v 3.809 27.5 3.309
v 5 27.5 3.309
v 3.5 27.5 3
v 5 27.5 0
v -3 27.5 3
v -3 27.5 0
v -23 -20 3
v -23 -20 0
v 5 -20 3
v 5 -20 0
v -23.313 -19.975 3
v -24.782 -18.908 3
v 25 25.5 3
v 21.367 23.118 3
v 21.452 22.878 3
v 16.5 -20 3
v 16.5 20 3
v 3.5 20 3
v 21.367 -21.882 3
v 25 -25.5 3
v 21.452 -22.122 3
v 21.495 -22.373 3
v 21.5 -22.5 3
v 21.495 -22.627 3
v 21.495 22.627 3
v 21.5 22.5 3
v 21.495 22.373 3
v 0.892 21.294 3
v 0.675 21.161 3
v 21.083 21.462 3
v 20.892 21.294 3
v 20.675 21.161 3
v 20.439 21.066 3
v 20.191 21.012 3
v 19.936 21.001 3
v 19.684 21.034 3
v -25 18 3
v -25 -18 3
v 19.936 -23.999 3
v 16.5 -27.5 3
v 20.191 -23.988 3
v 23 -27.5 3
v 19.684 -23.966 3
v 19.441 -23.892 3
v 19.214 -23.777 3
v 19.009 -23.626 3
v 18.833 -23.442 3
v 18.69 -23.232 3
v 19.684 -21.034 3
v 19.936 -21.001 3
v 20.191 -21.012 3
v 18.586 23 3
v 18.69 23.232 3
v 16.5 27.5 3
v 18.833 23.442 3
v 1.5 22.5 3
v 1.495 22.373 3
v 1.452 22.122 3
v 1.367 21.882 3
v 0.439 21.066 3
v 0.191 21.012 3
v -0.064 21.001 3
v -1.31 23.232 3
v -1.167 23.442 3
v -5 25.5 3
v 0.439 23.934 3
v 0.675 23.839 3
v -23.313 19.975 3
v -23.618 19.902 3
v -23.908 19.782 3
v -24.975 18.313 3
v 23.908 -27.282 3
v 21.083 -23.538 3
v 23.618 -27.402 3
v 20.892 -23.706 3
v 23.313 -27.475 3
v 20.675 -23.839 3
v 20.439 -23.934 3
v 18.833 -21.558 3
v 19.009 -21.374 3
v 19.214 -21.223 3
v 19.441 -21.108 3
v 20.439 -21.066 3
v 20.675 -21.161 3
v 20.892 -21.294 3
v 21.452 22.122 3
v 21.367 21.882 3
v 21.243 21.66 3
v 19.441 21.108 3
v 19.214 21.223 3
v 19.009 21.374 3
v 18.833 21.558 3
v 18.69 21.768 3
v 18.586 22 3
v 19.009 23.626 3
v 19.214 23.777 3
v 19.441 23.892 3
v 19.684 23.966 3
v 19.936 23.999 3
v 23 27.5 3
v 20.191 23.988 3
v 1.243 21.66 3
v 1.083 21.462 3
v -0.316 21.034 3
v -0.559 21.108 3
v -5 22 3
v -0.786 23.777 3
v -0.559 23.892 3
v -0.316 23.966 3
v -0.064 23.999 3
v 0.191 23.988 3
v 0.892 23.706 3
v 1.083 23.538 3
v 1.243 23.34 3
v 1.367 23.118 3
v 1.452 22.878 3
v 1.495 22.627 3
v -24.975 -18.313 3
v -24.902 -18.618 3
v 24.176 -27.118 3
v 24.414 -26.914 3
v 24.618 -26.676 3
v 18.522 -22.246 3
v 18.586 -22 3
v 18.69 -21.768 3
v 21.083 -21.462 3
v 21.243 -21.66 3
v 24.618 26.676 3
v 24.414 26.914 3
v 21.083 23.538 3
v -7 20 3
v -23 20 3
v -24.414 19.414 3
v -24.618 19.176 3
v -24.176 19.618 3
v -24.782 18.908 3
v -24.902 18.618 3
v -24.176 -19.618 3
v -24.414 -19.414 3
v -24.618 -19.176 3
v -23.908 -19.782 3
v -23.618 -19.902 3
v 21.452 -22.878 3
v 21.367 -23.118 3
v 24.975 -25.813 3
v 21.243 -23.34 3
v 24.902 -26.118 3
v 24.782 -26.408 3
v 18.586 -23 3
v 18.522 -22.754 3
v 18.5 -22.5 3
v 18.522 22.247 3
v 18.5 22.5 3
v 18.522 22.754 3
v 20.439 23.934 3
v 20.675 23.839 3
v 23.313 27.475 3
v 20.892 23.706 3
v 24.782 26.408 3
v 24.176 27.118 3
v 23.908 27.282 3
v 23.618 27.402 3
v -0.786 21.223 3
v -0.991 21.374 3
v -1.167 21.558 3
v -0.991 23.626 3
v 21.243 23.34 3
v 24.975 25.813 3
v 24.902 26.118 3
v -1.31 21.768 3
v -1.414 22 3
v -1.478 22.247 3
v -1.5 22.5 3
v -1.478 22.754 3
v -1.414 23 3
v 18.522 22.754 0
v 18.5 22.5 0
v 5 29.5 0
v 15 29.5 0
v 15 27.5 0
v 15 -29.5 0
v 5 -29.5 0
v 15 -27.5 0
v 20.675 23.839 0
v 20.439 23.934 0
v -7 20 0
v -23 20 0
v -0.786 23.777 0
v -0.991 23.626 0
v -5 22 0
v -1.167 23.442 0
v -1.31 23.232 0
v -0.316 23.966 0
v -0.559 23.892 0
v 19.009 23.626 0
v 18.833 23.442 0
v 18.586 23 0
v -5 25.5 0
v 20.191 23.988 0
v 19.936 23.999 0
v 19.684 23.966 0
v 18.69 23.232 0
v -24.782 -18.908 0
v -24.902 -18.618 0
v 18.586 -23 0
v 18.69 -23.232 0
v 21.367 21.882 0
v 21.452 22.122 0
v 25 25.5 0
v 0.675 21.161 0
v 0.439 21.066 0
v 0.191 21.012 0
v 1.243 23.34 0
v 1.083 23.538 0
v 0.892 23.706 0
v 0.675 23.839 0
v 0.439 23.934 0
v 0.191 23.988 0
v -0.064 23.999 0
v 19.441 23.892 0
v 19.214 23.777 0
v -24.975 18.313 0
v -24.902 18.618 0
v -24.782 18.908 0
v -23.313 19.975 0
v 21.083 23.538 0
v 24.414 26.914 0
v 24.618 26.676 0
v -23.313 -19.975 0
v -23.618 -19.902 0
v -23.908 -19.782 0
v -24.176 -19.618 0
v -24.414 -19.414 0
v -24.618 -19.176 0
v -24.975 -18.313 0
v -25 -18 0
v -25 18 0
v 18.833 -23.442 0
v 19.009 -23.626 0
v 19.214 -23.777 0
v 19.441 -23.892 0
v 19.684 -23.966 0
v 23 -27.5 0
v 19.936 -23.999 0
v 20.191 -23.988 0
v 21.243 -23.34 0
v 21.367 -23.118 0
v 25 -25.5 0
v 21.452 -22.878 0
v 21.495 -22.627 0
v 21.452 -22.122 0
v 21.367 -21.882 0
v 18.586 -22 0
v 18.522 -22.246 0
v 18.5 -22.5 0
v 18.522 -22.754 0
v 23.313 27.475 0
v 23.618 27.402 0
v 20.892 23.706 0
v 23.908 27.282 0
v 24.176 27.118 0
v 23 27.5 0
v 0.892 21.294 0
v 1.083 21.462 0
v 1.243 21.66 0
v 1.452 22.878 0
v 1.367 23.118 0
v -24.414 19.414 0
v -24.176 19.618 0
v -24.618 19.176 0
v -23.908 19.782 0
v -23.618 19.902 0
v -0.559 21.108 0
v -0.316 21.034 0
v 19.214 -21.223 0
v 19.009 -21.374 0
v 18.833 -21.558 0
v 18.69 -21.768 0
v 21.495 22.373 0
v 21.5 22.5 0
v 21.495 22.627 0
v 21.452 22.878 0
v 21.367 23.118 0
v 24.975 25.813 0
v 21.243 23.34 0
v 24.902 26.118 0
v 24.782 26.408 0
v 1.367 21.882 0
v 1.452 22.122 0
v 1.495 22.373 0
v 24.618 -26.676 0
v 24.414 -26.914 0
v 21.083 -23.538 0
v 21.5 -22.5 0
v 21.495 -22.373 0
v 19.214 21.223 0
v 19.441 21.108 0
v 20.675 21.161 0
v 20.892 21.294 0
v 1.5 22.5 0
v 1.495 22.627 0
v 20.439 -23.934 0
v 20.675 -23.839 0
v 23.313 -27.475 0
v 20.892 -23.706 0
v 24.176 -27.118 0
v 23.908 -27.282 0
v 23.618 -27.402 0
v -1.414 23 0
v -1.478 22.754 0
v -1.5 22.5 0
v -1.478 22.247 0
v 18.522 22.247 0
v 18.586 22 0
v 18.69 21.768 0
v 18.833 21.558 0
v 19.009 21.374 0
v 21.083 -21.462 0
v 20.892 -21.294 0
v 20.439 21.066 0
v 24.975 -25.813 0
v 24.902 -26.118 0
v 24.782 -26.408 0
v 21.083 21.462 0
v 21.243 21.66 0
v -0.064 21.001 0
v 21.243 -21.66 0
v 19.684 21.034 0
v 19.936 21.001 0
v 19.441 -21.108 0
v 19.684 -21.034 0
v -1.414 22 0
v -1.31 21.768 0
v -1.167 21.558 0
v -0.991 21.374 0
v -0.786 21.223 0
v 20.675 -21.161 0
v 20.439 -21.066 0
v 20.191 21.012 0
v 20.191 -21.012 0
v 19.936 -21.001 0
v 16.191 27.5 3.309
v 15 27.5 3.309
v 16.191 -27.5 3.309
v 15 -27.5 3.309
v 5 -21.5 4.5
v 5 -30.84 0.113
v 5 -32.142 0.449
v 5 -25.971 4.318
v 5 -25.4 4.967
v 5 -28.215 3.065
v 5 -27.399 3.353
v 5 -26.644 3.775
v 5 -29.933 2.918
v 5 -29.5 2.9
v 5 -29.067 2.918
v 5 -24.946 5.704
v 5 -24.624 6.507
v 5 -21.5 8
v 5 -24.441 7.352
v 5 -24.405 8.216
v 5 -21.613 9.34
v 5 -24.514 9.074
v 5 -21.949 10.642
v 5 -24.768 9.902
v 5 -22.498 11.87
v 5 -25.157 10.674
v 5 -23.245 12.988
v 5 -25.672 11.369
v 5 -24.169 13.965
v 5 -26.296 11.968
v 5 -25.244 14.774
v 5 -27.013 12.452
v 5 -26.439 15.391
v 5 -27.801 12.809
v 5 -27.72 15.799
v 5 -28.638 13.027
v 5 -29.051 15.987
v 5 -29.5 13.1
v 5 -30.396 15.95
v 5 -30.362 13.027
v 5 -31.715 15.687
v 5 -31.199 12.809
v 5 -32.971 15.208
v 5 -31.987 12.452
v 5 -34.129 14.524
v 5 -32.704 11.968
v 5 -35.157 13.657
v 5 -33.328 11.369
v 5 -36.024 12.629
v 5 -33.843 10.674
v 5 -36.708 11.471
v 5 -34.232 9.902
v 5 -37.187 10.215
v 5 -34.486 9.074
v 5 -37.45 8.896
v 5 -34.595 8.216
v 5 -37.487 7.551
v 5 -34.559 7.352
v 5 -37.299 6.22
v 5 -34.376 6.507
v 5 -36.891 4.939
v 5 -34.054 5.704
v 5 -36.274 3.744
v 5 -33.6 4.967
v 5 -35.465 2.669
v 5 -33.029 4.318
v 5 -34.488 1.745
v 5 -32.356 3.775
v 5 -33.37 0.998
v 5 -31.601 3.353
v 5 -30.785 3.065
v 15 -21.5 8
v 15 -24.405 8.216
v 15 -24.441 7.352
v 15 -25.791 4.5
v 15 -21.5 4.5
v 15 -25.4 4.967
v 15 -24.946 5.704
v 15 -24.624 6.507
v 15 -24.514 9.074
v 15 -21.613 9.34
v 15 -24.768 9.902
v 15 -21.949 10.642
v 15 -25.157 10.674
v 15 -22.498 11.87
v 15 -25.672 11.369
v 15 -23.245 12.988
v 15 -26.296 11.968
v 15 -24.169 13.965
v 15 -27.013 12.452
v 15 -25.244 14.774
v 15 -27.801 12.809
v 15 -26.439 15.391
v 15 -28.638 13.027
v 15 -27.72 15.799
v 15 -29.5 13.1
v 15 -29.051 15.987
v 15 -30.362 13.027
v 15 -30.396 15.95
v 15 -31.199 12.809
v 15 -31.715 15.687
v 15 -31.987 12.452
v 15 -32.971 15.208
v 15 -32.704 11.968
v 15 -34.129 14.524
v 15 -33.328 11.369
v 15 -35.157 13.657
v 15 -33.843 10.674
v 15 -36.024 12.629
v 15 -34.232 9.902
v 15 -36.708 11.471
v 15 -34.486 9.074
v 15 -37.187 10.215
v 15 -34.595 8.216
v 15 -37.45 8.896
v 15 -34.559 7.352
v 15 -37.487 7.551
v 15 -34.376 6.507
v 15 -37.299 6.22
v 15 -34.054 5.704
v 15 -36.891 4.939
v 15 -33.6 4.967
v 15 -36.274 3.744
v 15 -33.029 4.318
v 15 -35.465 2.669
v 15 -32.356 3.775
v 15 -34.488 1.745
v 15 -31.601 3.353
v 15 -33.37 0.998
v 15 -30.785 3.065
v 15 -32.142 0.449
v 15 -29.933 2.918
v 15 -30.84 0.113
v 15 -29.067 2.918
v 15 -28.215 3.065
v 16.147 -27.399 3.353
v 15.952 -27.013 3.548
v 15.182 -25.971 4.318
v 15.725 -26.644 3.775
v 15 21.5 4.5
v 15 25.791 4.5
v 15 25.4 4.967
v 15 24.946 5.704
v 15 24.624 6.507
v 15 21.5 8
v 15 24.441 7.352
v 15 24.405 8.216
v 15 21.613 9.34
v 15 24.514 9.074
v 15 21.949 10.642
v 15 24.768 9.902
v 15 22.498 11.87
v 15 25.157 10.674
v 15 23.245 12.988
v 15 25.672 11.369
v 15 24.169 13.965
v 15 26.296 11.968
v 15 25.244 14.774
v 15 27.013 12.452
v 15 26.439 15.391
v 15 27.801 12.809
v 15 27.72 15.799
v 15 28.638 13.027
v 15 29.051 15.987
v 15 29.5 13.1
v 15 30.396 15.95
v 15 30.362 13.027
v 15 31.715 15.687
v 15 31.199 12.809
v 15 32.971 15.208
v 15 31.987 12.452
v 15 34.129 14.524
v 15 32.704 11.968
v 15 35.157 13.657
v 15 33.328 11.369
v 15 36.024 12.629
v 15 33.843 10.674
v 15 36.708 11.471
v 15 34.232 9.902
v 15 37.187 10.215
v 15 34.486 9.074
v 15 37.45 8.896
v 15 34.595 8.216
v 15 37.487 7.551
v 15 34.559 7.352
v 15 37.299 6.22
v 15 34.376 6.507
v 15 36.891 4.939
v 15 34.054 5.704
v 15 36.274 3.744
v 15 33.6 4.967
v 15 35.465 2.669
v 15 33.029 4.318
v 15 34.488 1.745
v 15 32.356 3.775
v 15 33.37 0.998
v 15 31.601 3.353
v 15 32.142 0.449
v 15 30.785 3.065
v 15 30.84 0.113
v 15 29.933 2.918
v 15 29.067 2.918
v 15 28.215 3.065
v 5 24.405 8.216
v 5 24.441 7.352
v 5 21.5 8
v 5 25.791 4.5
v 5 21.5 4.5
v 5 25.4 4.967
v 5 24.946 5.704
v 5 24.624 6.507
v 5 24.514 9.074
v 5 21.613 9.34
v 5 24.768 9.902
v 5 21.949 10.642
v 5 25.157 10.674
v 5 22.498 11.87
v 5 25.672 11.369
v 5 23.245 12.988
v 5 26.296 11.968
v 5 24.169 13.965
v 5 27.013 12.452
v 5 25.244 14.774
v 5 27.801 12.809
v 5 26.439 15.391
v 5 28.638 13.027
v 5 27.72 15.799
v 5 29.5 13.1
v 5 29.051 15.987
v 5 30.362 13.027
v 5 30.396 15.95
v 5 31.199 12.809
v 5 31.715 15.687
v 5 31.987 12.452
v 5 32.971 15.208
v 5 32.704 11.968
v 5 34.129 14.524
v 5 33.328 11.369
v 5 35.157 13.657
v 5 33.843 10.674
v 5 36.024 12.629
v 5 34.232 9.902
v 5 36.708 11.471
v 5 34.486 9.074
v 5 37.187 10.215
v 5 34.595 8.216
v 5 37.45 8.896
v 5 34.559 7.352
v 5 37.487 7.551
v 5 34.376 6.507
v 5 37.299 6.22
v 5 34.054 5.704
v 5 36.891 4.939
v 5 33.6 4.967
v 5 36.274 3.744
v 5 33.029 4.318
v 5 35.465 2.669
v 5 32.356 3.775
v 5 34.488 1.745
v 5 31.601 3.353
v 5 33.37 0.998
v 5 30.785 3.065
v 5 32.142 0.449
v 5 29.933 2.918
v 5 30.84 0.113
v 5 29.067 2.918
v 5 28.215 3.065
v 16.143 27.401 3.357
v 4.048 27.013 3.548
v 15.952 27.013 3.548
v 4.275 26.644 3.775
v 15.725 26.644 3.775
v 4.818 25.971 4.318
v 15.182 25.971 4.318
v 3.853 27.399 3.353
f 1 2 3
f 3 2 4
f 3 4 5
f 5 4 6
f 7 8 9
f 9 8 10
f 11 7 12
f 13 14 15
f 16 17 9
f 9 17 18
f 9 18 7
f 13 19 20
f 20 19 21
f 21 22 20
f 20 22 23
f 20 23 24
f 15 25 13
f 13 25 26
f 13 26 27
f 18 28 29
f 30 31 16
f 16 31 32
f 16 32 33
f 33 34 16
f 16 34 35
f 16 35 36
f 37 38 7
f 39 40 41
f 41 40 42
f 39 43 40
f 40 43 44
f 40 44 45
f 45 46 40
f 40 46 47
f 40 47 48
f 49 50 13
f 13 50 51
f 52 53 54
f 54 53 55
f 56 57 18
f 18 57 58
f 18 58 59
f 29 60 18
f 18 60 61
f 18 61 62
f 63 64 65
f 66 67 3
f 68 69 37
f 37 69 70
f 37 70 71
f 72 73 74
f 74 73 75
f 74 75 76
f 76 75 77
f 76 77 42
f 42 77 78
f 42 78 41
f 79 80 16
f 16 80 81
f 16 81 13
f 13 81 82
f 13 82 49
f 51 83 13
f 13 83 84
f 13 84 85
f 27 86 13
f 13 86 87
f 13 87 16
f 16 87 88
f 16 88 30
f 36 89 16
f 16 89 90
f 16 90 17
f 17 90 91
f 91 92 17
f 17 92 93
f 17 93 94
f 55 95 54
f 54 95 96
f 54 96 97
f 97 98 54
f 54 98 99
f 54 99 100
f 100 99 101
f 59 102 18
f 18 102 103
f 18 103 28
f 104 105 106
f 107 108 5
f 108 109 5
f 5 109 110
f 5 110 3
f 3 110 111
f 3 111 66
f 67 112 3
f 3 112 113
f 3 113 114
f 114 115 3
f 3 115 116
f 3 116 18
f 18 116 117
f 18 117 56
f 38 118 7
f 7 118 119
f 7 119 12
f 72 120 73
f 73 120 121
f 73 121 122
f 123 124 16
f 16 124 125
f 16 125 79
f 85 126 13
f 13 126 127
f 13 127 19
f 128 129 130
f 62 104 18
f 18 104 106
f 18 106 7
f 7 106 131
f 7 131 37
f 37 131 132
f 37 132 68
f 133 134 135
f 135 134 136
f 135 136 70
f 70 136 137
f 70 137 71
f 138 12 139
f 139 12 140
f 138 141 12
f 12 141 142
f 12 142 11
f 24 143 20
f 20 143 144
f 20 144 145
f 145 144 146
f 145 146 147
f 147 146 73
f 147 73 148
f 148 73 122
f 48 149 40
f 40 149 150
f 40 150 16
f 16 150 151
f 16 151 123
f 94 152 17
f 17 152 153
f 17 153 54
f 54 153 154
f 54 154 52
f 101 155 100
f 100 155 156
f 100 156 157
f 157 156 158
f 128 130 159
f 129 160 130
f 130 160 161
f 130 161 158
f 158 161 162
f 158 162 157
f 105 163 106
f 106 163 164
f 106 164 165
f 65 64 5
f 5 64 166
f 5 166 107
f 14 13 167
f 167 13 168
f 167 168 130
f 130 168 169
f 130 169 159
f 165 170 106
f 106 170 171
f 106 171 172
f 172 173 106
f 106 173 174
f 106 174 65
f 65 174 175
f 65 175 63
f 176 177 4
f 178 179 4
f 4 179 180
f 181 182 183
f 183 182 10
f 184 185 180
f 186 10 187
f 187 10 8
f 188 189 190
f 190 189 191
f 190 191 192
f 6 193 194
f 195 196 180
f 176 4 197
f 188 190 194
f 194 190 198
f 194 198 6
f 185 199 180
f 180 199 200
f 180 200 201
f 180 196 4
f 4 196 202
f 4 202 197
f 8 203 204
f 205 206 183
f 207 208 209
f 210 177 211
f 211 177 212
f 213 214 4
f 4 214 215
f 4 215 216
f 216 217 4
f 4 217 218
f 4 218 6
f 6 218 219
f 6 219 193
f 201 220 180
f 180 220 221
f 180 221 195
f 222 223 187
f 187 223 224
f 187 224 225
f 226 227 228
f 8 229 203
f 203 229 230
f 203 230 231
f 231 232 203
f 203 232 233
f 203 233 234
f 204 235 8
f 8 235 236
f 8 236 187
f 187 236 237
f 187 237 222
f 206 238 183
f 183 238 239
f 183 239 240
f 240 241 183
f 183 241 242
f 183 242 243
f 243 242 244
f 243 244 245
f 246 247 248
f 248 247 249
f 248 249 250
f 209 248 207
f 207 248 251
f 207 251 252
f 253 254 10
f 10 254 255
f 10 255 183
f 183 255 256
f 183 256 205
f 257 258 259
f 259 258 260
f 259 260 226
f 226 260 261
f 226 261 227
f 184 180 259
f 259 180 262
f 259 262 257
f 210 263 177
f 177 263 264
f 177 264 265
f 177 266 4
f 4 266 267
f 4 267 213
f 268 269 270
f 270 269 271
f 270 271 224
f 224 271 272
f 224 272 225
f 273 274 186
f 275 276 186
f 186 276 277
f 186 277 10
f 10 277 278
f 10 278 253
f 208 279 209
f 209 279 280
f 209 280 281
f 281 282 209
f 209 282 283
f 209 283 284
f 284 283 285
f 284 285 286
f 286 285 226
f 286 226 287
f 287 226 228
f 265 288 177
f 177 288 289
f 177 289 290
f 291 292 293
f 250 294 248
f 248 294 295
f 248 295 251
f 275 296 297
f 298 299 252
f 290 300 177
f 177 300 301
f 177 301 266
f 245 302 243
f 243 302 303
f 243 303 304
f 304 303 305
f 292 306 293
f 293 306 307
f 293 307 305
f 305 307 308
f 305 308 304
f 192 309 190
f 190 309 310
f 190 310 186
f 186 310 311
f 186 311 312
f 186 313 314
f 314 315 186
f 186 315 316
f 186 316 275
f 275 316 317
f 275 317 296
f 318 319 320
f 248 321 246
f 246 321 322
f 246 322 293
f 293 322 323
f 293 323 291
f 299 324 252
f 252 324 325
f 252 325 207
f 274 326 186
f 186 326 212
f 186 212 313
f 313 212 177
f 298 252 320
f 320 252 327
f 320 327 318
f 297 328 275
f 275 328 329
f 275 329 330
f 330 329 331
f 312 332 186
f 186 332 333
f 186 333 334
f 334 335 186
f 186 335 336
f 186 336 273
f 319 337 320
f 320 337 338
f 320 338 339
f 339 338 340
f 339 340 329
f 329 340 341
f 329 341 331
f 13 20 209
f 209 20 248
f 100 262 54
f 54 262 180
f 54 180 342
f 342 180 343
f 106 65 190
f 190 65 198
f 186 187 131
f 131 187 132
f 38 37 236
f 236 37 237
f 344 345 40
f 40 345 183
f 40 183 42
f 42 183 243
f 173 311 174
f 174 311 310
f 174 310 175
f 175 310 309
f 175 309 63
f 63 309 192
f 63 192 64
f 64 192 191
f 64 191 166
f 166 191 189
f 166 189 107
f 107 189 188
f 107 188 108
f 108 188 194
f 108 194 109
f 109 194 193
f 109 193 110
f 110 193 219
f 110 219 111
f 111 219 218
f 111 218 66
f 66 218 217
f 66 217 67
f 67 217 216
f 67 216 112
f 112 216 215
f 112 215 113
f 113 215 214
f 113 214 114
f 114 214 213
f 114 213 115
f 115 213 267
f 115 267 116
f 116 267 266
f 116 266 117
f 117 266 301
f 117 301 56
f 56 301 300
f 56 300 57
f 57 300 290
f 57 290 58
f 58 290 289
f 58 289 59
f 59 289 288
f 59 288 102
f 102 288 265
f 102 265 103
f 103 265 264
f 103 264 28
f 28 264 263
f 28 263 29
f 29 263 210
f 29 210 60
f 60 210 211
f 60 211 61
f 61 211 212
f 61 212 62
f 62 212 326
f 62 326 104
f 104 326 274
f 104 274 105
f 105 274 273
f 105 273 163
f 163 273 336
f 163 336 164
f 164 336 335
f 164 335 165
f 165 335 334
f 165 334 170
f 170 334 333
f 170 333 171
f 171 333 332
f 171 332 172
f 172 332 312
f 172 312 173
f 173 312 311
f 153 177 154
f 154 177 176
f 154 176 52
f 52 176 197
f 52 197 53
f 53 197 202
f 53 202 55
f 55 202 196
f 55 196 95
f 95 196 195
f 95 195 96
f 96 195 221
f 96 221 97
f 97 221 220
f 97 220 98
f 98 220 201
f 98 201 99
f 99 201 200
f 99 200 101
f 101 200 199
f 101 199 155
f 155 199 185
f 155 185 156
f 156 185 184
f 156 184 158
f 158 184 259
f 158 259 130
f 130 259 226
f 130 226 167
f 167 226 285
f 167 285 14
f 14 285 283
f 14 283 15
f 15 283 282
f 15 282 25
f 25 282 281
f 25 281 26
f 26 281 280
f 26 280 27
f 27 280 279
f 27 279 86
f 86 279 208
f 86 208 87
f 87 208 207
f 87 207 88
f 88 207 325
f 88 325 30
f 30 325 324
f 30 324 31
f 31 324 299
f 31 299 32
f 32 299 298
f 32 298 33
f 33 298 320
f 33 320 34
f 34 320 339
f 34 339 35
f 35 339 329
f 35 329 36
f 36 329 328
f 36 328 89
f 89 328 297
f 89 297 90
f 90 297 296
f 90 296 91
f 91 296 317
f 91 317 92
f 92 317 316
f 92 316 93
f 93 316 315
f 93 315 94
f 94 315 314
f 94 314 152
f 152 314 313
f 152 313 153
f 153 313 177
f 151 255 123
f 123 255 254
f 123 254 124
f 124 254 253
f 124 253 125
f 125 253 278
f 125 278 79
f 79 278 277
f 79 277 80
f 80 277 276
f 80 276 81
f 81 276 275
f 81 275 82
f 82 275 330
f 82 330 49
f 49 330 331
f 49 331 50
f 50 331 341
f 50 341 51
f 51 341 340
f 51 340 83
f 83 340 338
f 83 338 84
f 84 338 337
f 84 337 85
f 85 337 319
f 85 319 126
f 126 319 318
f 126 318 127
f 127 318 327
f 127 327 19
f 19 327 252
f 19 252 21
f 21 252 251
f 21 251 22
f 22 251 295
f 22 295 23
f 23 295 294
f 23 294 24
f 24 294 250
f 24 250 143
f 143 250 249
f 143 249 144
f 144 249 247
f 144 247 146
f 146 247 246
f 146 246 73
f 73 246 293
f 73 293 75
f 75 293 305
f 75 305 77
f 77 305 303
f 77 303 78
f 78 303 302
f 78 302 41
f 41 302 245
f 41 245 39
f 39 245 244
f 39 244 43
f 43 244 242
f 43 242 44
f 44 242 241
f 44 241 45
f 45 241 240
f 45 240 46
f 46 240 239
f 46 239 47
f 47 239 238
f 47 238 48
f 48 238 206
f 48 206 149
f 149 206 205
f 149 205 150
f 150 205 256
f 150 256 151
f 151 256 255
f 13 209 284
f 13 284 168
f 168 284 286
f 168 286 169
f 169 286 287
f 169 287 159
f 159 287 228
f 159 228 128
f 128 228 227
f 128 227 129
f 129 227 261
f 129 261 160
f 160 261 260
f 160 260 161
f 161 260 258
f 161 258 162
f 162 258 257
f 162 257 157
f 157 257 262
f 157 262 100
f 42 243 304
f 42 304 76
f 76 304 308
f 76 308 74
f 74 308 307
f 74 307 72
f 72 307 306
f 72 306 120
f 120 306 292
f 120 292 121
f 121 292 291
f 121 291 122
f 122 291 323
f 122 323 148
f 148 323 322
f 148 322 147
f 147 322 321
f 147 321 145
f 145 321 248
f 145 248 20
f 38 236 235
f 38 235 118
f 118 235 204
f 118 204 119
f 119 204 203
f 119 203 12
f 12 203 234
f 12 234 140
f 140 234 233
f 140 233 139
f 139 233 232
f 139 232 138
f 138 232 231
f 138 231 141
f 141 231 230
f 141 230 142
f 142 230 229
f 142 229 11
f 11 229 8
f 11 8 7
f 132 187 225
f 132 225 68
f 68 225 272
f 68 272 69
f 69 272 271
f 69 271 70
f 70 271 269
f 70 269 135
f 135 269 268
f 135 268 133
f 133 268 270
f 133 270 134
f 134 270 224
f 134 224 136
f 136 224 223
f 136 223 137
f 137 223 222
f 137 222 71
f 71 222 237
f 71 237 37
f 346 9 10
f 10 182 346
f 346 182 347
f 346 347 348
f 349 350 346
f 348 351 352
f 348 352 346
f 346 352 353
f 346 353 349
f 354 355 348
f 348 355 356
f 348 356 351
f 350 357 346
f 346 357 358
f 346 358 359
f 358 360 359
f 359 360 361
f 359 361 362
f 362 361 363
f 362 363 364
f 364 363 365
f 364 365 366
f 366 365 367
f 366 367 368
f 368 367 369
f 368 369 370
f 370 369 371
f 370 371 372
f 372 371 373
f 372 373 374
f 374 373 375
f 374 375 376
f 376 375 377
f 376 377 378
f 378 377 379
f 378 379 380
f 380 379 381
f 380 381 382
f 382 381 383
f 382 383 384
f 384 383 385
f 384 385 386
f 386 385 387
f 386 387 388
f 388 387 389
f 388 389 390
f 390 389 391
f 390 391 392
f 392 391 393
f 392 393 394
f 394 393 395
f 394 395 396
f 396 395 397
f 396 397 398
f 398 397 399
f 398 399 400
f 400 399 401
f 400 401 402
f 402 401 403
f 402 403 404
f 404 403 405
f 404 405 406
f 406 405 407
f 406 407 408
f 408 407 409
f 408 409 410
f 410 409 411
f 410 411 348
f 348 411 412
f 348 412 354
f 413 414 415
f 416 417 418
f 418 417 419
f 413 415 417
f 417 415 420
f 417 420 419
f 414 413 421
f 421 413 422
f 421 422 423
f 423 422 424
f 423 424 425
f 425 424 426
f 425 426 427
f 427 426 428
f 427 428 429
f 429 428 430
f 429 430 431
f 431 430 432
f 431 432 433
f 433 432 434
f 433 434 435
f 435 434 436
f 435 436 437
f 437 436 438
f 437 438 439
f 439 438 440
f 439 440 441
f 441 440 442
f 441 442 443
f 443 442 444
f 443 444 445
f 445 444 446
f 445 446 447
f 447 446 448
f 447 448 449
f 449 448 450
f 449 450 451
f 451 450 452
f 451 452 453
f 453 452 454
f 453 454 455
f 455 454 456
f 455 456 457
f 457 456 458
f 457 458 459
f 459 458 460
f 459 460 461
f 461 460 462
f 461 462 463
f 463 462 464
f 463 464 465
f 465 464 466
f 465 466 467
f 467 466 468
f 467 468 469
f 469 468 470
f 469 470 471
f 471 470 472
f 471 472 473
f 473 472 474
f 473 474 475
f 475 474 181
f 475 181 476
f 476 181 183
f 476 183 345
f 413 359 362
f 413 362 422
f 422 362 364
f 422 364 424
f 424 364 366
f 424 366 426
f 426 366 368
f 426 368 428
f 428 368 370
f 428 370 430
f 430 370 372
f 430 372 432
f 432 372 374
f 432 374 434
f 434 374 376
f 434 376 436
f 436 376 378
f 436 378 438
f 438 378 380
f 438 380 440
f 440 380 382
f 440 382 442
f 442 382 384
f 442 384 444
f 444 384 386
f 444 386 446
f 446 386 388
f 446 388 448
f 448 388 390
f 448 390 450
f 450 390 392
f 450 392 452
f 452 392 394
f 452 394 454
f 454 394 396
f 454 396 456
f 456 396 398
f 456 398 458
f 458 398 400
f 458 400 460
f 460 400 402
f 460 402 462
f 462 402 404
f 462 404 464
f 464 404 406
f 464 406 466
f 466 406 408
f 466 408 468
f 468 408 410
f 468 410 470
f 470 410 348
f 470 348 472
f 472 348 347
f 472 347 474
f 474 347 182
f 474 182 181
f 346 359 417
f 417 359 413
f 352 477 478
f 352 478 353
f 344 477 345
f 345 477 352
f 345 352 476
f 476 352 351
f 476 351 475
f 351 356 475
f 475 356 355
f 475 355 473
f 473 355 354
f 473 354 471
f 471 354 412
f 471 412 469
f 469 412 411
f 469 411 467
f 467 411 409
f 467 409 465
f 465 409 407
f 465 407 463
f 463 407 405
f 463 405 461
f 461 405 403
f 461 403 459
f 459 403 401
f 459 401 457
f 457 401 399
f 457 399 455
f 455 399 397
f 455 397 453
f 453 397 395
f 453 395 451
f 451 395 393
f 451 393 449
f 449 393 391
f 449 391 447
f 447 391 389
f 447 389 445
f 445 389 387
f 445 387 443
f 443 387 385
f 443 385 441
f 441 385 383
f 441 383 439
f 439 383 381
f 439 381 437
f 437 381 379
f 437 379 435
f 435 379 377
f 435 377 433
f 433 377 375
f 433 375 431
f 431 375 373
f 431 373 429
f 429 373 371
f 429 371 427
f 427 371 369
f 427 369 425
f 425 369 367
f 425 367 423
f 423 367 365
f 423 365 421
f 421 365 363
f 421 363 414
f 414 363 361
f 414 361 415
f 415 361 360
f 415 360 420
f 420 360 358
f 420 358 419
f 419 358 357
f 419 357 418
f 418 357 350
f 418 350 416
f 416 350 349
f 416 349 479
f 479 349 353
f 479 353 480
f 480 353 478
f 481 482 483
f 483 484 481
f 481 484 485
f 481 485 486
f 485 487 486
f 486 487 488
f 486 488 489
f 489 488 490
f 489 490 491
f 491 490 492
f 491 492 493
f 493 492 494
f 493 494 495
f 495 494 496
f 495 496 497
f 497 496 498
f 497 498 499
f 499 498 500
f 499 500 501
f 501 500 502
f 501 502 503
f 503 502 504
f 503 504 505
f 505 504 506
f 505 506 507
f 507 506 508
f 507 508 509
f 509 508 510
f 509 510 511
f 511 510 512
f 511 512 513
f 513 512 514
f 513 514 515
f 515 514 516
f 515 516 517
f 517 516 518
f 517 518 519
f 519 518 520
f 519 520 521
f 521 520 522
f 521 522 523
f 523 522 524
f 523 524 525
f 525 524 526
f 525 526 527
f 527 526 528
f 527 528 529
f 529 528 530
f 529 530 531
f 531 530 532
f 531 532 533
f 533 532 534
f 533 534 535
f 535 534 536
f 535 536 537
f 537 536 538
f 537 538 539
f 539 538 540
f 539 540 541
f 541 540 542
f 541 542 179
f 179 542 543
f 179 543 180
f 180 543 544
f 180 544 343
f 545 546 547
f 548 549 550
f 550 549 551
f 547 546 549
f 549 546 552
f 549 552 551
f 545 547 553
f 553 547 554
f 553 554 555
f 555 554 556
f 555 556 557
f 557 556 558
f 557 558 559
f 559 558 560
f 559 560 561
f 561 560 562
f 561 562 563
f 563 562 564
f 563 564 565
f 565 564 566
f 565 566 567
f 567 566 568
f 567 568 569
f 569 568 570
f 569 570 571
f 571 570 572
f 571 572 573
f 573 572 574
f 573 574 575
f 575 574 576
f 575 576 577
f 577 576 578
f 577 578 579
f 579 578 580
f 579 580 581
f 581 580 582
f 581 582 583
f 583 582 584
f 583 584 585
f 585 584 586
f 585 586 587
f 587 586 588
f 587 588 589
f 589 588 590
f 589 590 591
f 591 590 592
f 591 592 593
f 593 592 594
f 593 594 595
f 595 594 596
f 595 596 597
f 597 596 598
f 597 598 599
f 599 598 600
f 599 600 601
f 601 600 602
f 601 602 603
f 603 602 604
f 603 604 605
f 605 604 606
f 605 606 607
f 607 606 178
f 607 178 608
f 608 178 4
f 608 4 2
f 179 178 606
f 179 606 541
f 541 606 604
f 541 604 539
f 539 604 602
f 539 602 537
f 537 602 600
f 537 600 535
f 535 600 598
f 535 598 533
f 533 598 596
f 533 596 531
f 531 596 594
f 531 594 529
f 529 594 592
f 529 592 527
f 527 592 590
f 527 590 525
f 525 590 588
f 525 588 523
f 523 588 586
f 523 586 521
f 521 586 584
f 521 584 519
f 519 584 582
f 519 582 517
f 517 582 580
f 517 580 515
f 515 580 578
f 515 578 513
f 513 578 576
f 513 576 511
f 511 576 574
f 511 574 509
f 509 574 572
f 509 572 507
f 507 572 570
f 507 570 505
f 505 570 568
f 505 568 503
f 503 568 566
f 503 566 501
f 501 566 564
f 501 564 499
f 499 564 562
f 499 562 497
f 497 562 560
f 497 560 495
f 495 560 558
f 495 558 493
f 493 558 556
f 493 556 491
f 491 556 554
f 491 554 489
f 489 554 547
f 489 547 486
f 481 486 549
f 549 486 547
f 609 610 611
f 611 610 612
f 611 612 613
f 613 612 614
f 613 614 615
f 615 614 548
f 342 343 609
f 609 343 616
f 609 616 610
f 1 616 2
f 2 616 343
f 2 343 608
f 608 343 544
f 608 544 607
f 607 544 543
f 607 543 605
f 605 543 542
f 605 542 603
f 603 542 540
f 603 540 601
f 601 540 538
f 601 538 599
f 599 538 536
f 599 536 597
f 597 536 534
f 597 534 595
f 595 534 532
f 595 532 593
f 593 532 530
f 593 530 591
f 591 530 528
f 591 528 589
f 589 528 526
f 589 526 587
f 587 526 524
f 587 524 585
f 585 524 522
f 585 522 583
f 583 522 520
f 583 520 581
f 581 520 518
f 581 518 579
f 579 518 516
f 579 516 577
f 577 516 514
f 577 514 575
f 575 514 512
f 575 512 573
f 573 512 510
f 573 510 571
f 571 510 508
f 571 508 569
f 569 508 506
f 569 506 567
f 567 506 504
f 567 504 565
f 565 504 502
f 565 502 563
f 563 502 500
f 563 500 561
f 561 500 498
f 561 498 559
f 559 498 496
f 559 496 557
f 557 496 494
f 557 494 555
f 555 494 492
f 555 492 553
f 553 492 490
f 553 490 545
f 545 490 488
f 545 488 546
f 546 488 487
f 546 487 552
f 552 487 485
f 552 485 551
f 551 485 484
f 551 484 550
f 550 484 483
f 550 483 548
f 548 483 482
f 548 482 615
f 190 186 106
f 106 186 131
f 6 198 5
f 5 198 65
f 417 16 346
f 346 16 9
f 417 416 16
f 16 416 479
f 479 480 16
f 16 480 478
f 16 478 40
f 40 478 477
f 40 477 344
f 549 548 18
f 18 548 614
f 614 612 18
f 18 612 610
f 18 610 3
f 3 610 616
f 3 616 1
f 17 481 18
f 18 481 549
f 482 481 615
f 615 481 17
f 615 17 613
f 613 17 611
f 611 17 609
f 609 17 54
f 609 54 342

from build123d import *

# Parameters (mm, degrees)
SKETCH1_R           = 1.5
BOSS_EXTRUDE1_DEPTH = 3
FILLET1_R           = 2
BOSS_EXTRUDE2_START = 5
SKETCH2_R           = 5.1
BOSS_EXTRUDE2_DEPTH = 10
CHAMFER1_SIZE       = 2
CHAMFER2_SIZE       = 1.5


with BuildPart() as part:
    # Sketch1 → Boss-Extrude1 (new body)
    with BuildSketch(Plane.XY):
        Polygon((10, -27.5), (25, -27.5), (25, 27.5), (-5, 27.5), (-5, 20), (-25, 20), (-25, -20), (10, -20), align=None)
        with Locations((0, 22.5)):
            Circle(SKETCH1_R, mode=Mode.SUBTRACT)
        with Locations((20, 22.5)):
            Circle(SKETCH1_R, mode=Mode.SUBTRACT)
        with Locations((20, -22.5)):
            Circle(SKETCH1_R, mode=Mode.SUBTRACT)
    extrude(amount=BOSS_EXTRUDE1_DEPTH)

    # Fillet1
    fillet1_edges = [part.edges().sort_by_distance(p)[0] for p in [
        (25, -27.5, 1.5),
        (-25, -20, 1.5),
        (-25, 20, 1.5),
        (25, 27.5, 1.5),
    ]]
    fillet(fillet1_edges, radius=FILLET1_R)

    # Sketch2 → Boss-Extrude2 (add)
    # profile 1 of 2: a face of its own
    with BuildSketch(Plane(origin=(0, 0, 0), x_dir=(0, 0, -1), z_dir=(1, 0, 0)).offset(BOSS_EXTRUDE2_START)):
        with BuildLine():
            ThreePointArc((0, -29.5), (-13.656854249, -35.156854249), (-8, -21.5))
            Line((-8, -21.5), (-3, -21.5))
            Line((-3, -21.5), (-3, -11.5))
            Line((-3, -11.5), (0, -11.5))
            Line((0, -11.5), (0, -29.5))
        make_face()
        with Locations((-8, -29.5)):
            Circle(SKETCH2_R, mode=Mode.SUBTRACT)
    # profile 2 of 2: a face of its own
    with BuildSketch(Plane(origin=(0, 0, 0), x_dir=(0, 0, -1), z_dir=(1, 0, 0)).offset(BOSS_EXTRUDE2_START)):
        with BuildLine():
            Line((0, 11.5), (0, 29.5))
            ThreePointArc((0, 29.5), (-13.656854249, 35.156854249), (-8, 21.5))
            Line((-8, 21.5), (-3, 21.5))
            Line((-3, 21.5), (-3, 11.5))
            Line((-3, 11.5), (0, 11.5))
        make_face()
        with Locations((-8, 29.5)):
            Circle(SKETCH2_R, mode=Mode.SUBTRACT)
    extrude(amount=BOSS_EXTRUDE2_DEPTH)

    # Chamfer1
    chamfer1_edges = [part.edges().sort_by_distance(p)[0] for p in [
        (-5, 20, 1.5),
        (-5, 27.5, 1.5),
    ]]
    chamfer(chamfer1_edges, length=CHAMFER1_SIZE)

    # Chamfer2
    # the kernel refuses this chamfer: 1.5 mm, written as the material it adds along each edge
    with BuildSketch(Plane(origin=(15, -21.5, 3), x_dir=(-0.02749587661058678, 0, 0.9996219169112968), z_dir=(0, -1, 0))) as chamfer2_piece_1_section:
        Polygon((CHAMFER2_SIZE * 0.999621916911, -CHAMFER2_SIZE * 0.0274958766106), (-CHAMFER2_SIZE * 0.0274958766106, -CHAMFER2_SIZE * 0.999621916911), (0, 0), align=None)
    chamfer2_piece_1 = extrude(amount=6, mode=Mode.PRIVATE)
    chamfer2_piece_1 = chamfer2_piece_1 - Plane(origin=(15.512165711, -29.5, 8), x_dir=(0, 0, -1), z_dir=(-1, 0, 0)) * Cylinder(5.1, 18, mode=Mode.PRIVATE)
    add(chamfer2_piece_1)
    with BuildSketch(Plane(origin=(5, -21.5, 3), x_dir=(0, 0.9996219169112968, -0.02749587661058648), z_dir=(1, 0, 0))) as chamfer2_piece_2_section:
        Polygon((CHAMFER2_SIZE * 0.999621916911, CHAMFER2_SIZE * 0.0274958766106), (-CHAMFER2_SIZE * 0.0274958766106, CHAMFER2_SIZE * 0.999621916911), (0, 0), align=None)
    chamfer2_piece_2 = extrude(amount=10, mode=Mode.PRIVATE)
    chamfer2_piece_2 = split(chamfer2_piece_2, bisect_by=Plane(origin=(10, -20, 3.495606231), z_dir=(0, -1, 0)), keep=Keep.TOP, mode=Mode.PRIVATE)
    add(chamfer2_piece_2)
    with BuildSketch(Plane(origin=(15, 21.5, 3), x_dir=(-0.02749587661058678, 0, 0.9996219169112968), z_dir=(0, 1, 0))) as chamfer2_piece_3_section:
        Polygon((CHAMFER2_SIZE * 0.999621916911, CHAMFER2_SIZE * 0.0274958766106), (-CHAMFER2_SIZE * 0.0274958766106, CHAMFER2_SIZE * 0.999621916911), (0, 0), align=None)
    chamfer2_piece_3 = extrude(amount=6, mode=Mode.PRIVATE)
    chamfer2_piece_3 = chamfer2_piece_3 - Plane(origin=(15.512165714, 29.5, 8), x_dir=(0, 0, -1), z_dir=(-1, 0, 0)) * Cylinder(5.1, 18, mode=Mode.PRIVATE)
    add(chamfer2_piece_3)
    with BuildSketch(Plane(origin=(5, 21.5, 3), x_dir=(0.027495876610586206, 0, 0.9996219169112968), z_dir=(0, 1, 0))) as chamfer2_piece_4_section:
        Polygon((CHAMFER2_SIZE * 0.999621916911, -CHAMFER2_SIZE * 0.0274958766106), (-CHAMFER2_SIZE * 0.0274958766106, -CHAMFER2_SIZE * 0.999621916911), (0, 0), align=None)
    chamfer2_piece_4 = extrude(amount=6, mode=Mode.PRIVATE)
    chamfer2_piece_4 = chamfer2_piece_4 - Plane(origin=(4.487834286, 29.5, 8), x_dir=(0, 0, -1), z_dir=(-1, 0, 0)) * Cylinder(5.1, 18, mode=Mode.PRIVATE)
    add(chamfer2_piece_4)
    with BuildSketch(Plane(origin=(5, 21.5, 3), x_dir=(0, -0.9996219169112968, -0.02749587661058648), z_dir=(1, 0, 0))) as chamfer2_piece_5:
        Polygon((CHAMFER2_SIZE * 0.999621916911, -CHAMFER2_SIZE * 0.0274958766106), (-CHAMFER2_SIZE * 0.0274958766106, -CHAMFER2_SIZE * 0.999621916911), (0, 0), align=None)
    extrude(amount=10)
    with BuildSketch(Plane(origin=(15, -17.642475518, 3), x_dir=(-0.02749587661058678, 0, 0.9996219169112968), z_dir=(0, -1, 0))) as chamfer2_piece_6a_section:
        Polygon((CHAMFER2_SIZE * 0.999621916911, -CHAMFER2_SIZE * 0.0274958766106), (-CHAMFER2_SIZE * 0.0274958766106, -CHAMFER2_SIZE * 0.999621916911), (0, 0), align=None)
    chamfer2_piece_6a = extrude(amount=9.857524482, mode=Mode.PRIVATE)
    chamfer2_piece_6a = split(chamfer2_piece_6a, bisect_by=Plane(origin=(15.49469044, -21.5, 3.49469044), z_dir=(0, 1, 0)), keep=Keep.TOP, mode=Mode.PRIVATE)
    with BuildSketch(Plane(origin=(5, -21.5, 3), x_dir=(0, 0.9996219169112968, -0.02749587661058648), z_dir=(1, 0, 0))) as chamfer2_piece_6b_section:
        Polygon((CHAMFER2_SIZE * 0.999621916911, CHAMFER2_SIZE * 0.0274958766106), (-CHAMFER2_SIZE * 0.0274958766106, CHAMFER2_SIZE * 0.999621916911), (0, 0), align=None)
    chamfer2_piece_6b = extrude(amount=13.857524482, mode=Mode.PRIVATE)
    chamfer2_piece_6b = split(chamfer2_piece_6b, bisect_by=Plane(origin=(16.928692538, -20, 3.495574544), z_dir=(0, -1, 0)), keep=Keep.TOP, mode=Mode.PRIVATE)
    chamfer2_piece_6b = split(chamfer2_piece_6b, bisect_by=Plane(origin=(15, -21.007028814, 3.495574544), z_dir=(1, 0, 0)), keep=Keep.TOP, mode=Mode.PRIVATE)
    chamfer2_piece_6b = chamfer2_piece_6b - Plane(origin=(20, -22.5, 3.495574544), x_dir=(1, 0, 0), z_dir=(0, 0, -1)) * Cylinder(1.5, 34, mode=Mode.PRIVATE)
    chamfer2_piece_6 = chamfer2_piece_6a & chamfer2_piece_6b
    add(chamfer2_piece_6)
    with BuildSketch(Plane(origin=(15, 17.642475518, 3), x_dir=(-0.02749587661058678, 0, 0.9996219169112968), z_dir=(0, 1, 0))) as chamfer2_piece_7a_section:
        Polygon((CHAMFER2_SIZE * 0.999621916911, CHAMFER2_SIZE * 0.0274958766106), (-CHAMFER2_SIZE * 0.0274958766106, CHAMFER2_SIZE * 0.999621916911), (0, 0), align=None)
    chamfer2_piece_7a = extrude(amount=9.857524482, mode=Mode.PRIVATE)
    chamfer2_piece_7a = split(chamfer2_piece_7a, bisect_by=Plane(origin=(15.49469044, 21.5, 3.49469044), z_dir=(0, -1, 0)), keep=Keep.TOP, mode=Mode.PRIVATE)
    with BuildSketch(Plane(origin=(5, 21.5, 3), x_dir=(0, -0.9996219169112968, -0.02749587661058648), z_dir=(1, 0, 0))) as chamfer2_piece_7b_section:
        Polygon((CHAMFER2_SIZE * 0.999621916911, -CHAMFER2_SIZE * 0.0274958766106), (-CHAMFER2_SIZE * 0.0274958766106, -CHAMFER2_SIZE * 0.999621916911), (0, 0), align=None)
    chamfer2_piece_7b = extrude(amount=13.857524482, mode=Mode.PRIVATE)
    chamfer2_piece_7b = split(chamfer2_piece_7b, bisect_by=Plane(origin=(15, 21.005289845, 3.494658773), z_dir=(1, 0, 0)), keep=Keep.TOP, mode=Mode.PRIVATE)
    chamfer2_piece_7b = chamfer2_piece_7b - Plane(origin=(20, 22.5, 3.494658773), x_dir=(1, 0, 0), z_dir=(0, 0, -1)) * Cylinder(1.5, 34, mode=Mode.PRIVATE)
    chamfer2_piece_7 = chamfer2_piece_7a & chamfer2_piece_7b
    add(chamfer2_piece_7)
    with BuildSketch(Plane(origin=(5, 17.642475518, 3), x_dir=(0.027495876610586206, 0, 0.9996219169112968), z_dir=(0, 1, 0))) as chamfer2_piece_8a_section:
        Polygon((CHAMFER2_SIZE * 0.999621916911, -CHAMFER2_SIZE * 0.0274958766106), (-CHAMFER2_SIZE * 0.0274958766106, -CHAMFER2_SIZE * 0.999621916911), (0, 0), align=None)
    chamfer2_piece_8a = extrude(amount=9.857524482, mode=Mode.PRIVATE)
    chamfer2_piece_8a = split(chamfer2_piece_8a, bisect_by=Plane(origin=(4.50530956, 21.5, 3.49469044), z_dir=(0, -1, 0)), keep=Keep.TOP, mode=Mode.PRIVATE)
    with BuildSketch(Plane(origin=(1.142475518, 21.5, 3), x_dir=(0, -0.9996219169112968, -0.02749587661058648), z_dir=(1, 0, 0))) as chamfer2_piece_8b_section:
        Polygon((CHAMFER2_SIZE * 0.999621916911, -CHAMFER2_SIZE * 0.0274958766106), (-CHAMFER2_SIZE * 0.0274958766106, -CHAMFER2_SIZE * 0.999621916911), (0, 0), align=None)
    chamfer2_piece_8b = extrude(amount=13.857524482, mode=Mode.PRIVATE)
    chamfer2_piece_8b = split(chamfer2_piece_8b, bisect_by=Plane(origin=(5, 21.005289845, 3.494658773), z_dir=(-1, 0, 0)), keep=Keep.TOP, mode=Mode.PRIVATE)
    chamfer2_piece_8b = chamfer2_piece_8b - Plane(origin=(0, 22.5, 3.494658773), x_dir=(1, 0, 0), z_dir=(0, 0, -1)) * Cylinder(1.5, 34, mode=Mode.PRIVATE)
    chamfer2_piece_8 = chamfer2_piece_8a & chamfer2_piece_8b
    add(chamfer2_piece_8)


solid = part.part
